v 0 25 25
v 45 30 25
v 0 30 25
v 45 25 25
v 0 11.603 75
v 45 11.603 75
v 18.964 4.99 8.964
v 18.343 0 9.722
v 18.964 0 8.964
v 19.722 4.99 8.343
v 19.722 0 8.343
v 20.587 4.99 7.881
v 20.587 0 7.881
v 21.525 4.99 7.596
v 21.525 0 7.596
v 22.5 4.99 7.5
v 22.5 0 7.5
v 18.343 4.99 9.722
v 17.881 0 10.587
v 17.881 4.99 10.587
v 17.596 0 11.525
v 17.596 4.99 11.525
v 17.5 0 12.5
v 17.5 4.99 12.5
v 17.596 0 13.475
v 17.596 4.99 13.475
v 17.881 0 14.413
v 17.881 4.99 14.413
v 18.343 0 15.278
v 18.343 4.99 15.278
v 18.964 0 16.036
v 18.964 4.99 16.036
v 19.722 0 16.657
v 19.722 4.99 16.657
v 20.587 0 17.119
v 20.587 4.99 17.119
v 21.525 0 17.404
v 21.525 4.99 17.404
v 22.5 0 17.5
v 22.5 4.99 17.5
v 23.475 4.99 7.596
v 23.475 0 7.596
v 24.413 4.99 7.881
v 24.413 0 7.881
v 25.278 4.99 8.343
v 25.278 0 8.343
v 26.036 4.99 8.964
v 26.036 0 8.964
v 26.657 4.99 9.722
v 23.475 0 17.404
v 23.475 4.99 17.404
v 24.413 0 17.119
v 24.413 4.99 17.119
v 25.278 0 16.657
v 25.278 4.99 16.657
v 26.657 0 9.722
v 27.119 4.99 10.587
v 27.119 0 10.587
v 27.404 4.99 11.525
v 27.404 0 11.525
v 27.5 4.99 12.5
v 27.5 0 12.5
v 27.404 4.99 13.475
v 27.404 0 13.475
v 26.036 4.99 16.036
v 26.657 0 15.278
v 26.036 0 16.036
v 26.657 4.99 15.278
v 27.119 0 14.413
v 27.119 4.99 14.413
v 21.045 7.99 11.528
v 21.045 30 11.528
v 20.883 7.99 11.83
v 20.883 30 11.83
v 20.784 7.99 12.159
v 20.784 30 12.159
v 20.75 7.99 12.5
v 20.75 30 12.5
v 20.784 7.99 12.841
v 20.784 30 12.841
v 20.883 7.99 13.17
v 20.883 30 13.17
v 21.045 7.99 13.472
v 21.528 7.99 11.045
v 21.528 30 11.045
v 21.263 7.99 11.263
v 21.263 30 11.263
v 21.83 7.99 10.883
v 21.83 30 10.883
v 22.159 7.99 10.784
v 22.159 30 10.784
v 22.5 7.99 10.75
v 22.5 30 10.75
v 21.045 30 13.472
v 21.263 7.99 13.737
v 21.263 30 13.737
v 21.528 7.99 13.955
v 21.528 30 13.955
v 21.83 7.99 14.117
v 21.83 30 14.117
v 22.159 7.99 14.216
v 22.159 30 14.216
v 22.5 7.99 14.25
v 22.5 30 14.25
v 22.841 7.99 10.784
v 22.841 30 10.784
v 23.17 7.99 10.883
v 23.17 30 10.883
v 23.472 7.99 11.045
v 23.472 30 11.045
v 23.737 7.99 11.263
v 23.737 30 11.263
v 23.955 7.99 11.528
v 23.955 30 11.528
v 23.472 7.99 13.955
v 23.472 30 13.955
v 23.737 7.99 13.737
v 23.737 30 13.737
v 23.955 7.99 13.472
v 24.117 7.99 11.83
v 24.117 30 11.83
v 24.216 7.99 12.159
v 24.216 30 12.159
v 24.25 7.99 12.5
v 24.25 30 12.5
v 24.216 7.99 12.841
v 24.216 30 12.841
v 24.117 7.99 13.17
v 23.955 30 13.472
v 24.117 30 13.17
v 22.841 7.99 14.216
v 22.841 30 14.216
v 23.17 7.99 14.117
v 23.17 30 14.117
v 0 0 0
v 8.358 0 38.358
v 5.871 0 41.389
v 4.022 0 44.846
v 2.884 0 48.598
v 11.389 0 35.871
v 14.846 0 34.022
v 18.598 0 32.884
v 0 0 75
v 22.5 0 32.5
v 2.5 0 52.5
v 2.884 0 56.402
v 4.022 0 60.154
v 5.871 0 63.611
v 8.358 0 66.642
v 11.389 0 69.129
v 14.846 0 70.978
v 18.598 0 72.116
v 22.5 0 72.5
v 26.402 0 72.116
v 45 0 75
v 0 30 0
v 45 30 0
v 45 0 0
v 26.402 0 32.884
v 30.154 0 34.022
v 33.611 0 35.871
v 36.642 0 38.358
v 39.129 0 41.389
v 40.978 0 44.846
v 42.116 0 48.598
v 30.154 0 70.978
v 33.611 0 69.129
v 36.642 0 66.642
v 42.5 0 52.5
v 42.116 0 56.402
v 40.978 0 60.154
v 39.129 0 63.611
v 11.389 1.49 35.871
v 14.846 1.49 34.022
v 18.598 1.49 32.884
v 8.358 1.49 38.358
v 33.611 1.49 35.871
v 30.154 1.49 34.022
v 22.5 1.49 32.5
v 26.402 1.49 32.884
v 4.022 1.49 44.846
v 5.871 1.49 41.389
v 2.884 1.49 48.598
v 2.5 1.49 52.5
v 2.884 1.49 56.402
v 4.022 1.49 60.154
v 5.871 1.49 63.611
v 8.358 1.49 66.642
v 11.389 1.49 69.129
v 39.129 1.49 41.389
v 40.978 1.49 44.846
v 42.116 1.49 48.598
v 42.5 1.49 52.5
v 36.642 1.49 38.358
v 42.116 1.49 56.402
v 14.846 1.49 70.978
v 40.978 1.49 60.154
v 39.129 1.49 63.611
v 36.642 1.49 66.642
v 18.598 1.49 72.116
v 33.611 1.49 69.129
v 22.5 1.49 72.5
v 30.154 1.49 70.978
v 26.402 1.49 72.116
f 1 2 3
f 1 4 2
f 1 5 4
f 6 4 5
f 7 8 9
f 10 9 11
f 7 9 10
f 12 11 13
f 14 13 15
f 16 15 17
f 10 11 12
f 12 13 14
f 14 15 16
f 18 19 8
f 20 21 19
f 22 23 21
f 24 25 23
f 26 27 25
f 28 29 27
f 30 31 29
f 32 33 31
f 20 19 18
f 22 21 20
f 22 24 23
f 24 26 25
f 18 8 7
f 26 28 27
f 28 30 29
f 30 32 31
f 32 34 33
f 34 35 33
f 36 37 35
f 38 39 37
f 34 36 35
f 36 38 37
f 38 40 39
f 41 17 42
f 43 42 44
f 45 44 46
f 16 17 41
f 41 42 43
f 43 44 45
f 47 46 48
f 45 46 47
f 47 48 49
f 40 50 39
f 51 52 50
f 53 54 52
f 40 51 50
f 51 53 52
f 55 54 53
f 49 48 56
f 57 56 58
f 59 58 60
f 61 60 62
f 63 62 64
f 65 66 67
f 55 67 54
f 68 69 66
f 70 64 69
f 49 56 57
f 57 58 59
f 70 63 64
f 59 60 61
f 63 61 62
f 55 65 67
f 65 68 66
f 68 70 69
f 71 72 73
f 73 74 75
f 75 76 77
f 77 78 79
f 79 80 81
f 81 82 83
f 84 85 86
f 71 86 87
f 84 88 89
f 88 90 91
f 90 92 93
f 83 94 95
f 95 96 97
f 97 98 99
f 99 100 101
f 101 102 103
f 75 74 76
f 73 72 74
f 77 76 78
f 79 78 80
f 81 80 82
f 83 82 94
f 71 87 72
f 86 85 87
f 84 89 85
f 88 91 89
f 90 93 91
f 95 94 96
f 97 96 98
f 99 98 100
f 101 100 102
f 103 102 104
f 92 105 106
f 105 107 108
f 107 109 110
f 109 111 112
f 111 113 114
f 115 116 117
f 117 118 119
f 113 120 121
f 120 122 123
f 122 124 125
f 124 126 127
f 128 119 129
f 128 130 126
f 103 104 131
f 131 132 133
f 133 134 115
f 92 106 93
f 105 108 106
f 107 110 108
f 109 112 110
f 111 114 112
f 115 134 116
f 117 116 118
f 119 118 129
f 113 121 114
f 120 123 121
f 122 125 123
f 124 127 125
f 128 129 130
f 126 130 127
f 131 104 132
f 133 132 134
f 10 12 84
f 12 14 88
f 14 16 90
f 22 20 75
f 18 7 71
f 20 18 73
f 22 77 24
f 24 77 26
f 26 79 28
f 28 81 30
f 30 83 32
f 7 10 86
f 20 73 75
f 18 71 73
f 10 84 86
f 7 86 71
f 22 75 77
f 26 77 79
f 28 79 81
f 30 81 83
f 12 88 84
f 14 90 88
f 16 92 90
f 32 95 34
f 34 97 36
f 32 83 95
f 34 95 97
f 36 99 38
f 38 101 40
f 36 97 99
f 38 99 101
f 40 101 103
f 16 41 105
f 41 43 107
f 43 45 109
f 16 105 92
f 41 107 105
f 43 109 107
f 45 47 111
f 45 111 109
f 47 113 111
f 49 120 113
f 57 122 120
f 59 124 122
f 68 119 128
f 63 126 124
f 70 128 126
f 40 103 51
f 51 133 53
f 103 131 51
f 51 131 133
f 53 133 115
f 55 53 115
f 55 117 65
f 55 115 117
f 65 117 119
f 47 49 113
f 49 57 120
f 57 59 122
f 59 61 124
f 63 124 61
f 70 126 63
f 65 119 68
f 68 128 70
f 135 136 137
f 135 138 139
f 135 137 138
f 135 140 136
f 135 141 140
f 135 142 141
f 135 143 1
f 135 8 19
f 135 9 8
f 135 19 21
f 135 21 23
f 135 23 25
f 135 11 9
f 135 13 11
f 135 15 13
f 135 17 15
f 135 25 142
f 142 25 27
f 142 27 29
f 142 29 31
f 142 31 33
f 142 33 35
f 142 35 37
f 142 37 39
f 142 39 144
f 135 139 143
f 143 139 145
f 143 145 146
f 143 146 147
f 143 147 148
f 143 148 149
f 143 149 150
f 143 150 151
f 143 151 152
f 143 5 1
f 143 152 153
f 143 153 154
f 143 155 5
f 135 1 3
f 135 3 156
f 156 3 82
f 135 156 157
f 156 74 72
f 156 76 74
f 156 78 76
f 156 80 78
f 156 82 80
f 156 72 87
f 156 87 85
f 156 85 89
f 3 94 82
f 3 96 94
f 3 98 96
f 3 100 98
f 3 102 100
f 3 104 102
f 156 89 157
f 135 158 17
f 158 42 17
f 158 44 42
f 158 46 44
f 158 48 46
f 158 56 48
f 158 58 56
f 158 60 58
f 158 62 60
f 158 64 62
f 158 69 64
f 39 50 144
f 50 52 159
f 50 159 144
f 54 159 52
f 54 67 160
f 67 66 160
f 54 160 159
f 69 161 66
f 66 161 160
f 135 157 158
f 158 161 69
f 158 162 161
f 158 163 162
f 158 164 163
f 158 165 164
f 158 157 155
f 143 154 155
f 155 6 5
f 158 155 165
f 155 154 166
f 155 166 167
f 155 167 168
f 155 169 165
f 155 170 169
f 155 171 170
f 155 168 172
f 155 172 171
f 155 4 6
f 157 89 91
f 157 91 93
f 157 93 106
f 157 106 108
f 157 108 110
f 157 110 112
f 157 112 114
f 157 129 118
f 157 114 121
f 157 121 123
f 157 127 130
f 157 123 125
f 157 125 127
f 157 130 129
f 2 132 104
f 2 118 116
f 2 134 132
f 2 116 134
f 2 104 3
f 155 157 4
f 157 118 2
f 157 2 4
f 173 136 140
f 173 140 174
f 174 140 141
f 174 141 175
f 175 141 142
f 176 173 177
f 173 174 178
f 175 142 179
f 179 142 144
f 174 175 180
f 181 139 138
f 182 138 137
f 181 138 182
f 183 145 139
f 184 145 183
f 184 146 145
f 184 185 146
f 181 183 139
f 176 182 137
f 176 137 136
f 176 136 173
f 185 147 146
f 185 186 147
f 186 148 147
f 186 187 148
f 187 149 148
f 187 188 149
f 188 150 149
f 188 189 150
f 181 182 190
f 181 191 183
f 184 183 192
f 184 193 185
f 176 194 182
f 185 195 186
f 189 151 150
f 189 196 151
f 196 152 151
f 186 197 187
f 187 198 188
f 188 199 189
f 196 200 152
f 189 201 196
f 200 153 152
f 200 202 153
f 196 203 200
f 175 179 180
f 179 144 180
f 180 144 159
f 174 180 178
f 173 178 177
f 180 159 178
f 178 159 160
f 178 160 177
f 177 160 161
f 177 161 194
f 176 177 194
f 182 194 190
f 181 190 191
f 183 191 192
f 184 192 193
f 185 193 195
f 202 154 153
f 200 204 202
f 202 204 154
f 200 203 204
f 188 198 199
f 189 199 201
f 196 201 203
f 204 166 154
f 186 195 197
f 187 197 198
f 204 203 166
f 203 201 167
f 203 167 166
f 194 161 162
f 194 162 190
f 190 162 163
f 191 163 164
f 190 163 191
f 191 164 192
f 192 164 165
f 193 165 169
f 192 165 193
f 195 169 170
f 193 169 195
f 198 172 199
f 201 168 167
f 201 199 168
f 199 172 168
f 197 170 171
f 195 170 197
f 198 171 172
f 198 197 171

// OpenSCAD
$fn=32;

trim_width = 20;    // est
trim_height = 50;   // est
trim_angle = 15;    // degrees; est
gate_foot_d = 35;
gate_foot_r = gate_foot_d/2;
padding = 10;
padding_h = 25;

module screw_hole() {
    cylinder(r=5, h=5);
    cylinder(r=1.75, h=d+5);
    translate([0,0,5]) cylinder(r1=5, r2=1.75, h=3);
}

h = trim_height+padding_h;
w = gate_foot_d+padding;
d = trim_width+padding;
difference() {
    cube([w,d,h]);
    translate([-0.01,d-5,h-trim_height]) {
        color("blue") cube([w+0.1, 6, 10]);
        color("red") rotate([trim_angle,0,0])
            cube([w+0.1, trim_width+0.1, trim_height+5]);
    }
    translate([w/2, -0.01, h-gate_foot_r-5]) rotate([-90,0,0])
    color("yellow") cylinder(r=gate_foot_r+2.5, h=1.5);
    // Add the screw hole
    translate([w/2, -0.01, padding_h/2]) rotate([-90,0,0]) screw_hole();
}

//translate([-5,-5,0]) screw_hole();
